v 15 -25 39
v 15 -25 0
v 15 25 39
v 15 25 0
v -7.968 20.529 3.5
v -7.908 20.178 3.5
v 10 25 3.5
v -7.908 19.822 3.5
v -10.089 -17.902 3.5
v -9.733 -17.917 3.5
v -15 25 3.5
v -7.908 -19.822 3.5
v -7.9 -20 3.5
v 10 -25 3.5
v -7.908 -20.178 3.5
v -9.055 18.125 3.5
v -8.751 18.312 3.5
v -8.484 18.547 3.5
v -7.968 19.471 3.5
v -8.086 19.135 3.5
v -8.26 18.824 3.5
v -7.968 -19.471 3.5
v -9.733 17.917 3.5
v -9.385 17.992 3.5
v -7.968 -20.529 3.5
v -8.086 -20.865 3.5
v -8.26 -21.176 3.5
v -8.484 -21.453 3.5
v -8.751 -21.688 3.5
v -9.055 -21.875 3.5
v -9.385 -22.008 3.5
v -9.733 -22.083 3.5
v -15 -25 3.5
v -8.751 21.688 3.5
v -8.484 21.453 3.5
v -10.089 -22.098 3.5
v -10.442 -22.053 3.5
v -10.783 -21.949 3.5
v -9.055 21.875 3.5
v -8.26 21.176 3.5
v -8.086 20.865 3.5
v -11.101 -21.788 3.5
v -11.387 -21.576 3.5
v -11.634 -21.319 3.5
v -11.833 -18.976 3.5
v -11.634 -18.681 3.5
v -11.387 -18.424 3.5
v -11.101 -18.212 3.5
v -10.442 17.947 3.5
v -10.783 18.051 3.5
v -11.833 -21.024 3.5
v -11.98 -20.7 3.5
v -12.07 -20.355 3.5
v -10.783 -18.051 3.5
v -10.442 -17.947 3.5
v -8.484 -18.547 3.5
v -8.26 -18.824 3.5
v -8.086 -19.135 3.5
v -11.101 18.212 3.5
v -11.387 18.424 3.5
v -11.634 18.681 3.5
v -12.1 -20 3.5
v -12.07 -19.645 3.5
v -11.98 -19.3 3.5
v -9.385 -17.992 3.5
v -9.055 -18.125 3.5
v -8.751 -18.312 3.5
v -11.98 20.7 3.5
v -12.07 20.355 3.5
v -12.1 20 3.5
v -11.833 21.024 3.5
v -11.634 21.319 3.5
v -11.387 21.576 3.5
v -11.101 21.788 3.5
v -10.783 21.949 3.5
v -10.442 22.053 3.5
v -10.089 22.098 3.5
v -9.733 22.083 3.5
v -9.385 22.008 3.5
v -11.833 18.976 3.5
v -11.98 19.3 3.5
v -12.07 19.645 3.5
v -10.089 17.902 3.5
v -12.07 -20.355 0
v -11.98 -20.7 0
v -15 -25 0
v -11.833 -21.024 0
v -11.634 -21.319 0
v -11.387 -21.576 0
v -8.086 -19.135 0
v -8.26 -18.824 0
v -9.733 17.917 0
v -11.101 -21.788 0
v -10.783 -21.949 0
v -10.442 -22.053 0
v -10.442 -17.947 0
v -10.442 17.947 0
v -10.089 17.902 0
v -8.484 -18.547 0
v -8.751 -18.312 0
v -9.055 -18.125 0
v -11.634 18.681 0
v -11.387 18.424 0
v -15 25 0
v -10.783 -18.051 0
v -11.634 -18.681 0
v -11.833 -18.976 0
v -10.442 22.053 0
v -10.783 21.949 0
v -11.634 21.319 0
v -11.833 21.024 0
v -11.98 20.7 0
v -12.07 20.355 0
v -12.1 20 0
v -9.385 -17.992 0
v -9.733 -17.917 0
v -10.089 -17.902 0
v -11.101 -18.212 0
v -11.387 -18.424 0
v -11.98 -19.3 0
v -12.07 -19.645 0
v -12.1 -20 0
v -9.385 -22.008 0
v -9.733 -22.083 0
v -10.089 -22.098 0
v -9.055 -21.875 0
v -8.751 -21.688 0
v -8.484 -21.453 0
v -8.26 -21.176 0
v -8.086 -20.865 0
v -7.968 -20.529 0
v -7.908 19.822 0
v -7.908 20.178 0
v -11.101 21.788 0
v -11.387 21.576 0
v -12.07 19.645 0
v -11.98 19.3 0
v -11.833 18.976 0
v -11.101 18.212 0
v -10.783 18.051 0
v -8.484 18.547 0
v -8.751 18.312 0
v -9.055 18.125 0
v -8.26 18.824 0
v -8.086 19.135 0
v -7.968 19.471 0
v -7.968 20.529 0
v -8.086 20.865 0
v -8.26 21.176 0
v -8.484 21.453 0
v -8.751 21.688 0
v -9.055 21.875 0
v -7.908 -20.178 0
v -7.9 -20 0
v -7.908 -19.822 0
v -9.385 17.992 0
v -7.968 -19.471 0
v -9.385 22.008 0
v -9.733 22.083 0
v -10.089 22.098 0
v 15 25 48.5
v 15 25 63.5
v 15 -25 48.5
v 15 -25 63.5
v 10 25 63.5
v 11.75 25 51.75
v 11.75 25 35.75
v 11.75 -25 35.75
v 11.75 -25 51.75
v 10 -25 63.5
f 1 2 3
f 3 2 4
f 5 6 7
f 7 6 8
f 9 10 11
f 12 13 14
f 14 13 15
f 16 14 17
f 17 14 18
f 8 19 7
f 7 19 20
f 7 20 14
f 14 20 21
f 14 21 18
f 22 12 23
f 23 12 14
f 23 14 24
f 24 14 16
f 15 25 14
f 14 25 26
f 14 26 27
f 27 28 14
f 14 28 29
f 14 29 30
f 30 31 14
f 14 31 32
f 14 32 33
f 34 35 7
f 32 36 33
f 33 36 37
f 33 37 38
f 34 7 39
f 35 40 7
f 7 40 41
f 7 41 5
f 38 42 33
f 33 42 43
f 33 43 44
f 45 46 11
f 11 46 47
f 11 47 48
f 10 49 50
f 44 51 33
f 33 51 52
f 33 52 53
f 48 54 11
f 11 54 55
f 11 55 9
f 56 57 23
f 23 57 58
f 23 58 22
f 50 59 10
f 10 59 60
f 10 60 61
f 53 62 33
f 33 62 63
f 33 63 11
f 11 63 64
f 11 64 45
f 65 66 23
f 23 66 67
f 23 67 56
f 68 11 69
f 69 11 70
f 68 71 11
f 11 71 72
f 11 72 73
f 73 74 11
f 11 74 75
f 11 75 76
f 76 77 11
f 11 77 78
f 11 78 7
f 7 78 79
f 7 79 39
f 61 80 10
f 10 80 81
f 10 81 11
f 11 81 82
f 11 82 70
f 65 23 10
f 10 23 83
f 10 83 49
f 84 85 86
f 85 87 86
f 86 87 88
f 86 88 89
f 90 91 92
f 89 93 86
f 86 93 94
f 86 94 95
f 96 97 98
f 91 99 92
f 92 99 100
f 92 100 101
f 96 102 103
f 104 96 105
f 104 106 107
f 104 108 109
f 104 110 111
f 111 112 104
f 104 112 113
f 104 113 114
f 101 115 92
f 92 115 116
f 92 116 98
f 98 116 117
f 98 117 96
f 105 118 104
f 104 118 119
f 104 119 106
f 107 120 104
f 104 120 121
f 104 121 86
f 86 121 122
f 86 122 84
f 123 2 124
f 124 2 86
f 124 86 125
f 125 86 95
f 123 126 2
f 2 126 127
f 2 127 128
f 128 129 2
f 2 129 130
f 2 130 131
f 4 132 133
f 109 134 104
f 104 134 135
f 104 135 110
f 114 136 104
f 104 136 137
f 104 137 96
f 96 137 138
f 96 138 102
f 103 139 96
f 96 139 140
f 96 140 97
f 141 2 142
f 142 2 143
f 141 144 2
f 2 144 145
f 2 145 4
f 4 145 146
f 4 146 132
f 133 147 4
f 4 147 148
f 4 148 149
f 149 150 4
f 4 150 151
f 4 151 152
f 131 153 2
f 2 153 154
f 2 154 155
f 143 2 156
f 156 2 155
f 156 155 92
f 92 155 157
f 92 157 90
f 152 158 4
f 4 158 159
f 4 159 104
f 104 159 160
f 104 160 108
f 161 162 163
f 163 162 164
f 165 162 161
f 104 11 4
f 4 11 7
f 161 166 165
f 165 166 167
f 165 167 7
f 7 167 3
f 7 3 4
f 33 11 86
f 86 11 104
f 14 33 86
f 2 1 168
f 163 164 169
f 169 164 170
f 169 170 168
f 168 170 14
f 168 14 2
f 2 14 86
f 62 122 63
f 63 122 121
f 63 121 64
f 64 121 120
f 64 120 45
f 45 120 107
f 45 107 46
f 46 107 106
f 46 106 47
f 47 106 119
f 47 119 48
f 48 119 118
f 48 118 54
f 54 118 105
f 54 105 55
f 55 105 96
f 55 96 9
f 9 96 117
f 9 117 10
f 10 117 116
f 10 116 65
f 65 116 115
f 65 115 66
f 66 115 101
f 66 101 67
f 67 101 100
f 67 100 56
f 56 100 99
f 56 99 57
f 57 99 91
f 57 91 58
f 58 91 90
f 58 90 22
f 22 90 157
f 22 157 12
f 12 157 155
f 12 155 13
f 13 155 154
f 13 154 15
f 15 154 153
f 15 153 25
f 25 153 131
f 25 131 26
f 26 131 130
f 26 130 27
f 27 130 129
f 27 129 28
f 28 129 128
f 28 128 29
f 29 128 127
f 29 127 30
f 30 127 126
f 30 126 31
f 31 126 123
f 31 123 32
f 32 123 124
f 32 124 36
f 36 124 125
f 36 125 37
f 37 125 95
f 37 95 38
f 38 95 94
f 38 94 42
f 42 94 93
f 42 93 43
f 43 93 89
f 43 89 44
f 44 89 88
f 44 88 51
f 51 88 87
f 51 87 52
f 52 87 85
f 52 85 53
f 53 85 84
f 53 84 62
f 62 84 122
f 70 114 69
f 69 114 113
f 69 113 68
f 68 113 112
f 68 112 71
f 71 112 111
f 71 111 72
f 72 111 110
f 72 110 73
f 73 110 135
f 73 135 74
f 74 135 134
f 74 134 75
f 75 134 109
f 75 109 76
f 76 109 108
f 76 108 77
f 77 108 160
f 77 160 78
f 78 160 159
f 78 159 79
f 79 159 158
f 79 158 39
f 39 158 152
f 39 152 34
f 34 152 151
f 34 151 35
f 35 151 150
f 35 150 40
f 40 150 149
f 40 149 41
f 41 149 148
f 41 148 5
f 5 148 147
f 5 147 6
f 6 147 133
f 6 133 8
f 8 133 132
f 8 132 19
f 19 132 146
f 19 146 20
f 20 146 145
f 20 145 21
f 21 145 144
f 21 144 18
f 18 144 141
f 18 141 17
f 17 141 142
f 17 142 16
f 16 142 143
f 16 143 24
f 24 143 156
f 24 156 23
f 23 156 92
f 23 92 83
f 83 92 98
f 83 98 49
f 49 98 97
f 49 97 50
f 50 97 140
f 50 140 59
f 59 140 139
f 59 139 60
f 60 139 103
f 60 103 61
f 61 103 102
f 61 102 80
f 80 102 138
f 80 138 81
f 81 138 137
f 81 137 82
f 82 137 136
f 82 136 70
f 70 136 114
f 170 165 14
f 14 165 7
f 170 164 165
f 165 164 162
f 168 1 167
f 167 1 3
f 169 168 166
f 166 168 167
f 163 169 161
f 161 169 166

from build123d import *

# Parameters (mm, degrees)
SKETCH_2_W          = 30
SKETCH_2_H          = 50
SKETCH_2_R          = 2.1
EXTRUDE_1_DEPTH     = 3.5
SKETCH_3_W          = 5
SKETCH_3_H          = 50
EXTRUDE_2_DEPTH     = 60
CUT_EXTRUDE_1_REACH = 84.202


with BuildPart() as part:
    # 草图2 → 凸台-拉伸1 (new body)
    with BuildSketch(Plane.XY):
        Rectangle(SKETCH_2_W, SKETCH_2_H)
        with Locations((-10, -20)):
            Circle(SKETCH_2_R, mode=Mode.SUBTRACT)
        with Locations(Location((-10, 20, 0), (0, 0, 180))):
            Circle(SKETCH_2_R, mode=Mode.SUBTRACT)
    extrude(amount=EXTRUDE_1_DEPTH)

    # 草图3 → 凸台-拉伸2 (add)
    with BuildSketch(Plane.XY.offset(3.5)):
        with Locations((12.5, 0)):
            Rectangle(SKETCH_3_W, SKETCH_3_H)
    extrude(amount=EXTRUDE_2_DEPTH)

    # 草图6 → 切除-拉伸1 (cut, up to next)
    with BuildSketch(Plane.XZ.offset(25), mode=Mode.PRIVATE) as cut_extrude_1_sk1:
        Polygon((15, 48.5), (11.75, 51.75), (11.75, 35.75), (15, 39), align=None)
    cut_extrude_1_tool1 = extrude(cut_extrude_1_sk1.sketch, amount=-CUT_EXTRUDE_1_REACH, mode=Mode.PRIVATE) & part.part
    add(cut_extrude_1_tool1.solids().sort_by_distance((13.236928, -25, 43.75))[0], mode=Mode.SUBTRACT)


solid = part.part
